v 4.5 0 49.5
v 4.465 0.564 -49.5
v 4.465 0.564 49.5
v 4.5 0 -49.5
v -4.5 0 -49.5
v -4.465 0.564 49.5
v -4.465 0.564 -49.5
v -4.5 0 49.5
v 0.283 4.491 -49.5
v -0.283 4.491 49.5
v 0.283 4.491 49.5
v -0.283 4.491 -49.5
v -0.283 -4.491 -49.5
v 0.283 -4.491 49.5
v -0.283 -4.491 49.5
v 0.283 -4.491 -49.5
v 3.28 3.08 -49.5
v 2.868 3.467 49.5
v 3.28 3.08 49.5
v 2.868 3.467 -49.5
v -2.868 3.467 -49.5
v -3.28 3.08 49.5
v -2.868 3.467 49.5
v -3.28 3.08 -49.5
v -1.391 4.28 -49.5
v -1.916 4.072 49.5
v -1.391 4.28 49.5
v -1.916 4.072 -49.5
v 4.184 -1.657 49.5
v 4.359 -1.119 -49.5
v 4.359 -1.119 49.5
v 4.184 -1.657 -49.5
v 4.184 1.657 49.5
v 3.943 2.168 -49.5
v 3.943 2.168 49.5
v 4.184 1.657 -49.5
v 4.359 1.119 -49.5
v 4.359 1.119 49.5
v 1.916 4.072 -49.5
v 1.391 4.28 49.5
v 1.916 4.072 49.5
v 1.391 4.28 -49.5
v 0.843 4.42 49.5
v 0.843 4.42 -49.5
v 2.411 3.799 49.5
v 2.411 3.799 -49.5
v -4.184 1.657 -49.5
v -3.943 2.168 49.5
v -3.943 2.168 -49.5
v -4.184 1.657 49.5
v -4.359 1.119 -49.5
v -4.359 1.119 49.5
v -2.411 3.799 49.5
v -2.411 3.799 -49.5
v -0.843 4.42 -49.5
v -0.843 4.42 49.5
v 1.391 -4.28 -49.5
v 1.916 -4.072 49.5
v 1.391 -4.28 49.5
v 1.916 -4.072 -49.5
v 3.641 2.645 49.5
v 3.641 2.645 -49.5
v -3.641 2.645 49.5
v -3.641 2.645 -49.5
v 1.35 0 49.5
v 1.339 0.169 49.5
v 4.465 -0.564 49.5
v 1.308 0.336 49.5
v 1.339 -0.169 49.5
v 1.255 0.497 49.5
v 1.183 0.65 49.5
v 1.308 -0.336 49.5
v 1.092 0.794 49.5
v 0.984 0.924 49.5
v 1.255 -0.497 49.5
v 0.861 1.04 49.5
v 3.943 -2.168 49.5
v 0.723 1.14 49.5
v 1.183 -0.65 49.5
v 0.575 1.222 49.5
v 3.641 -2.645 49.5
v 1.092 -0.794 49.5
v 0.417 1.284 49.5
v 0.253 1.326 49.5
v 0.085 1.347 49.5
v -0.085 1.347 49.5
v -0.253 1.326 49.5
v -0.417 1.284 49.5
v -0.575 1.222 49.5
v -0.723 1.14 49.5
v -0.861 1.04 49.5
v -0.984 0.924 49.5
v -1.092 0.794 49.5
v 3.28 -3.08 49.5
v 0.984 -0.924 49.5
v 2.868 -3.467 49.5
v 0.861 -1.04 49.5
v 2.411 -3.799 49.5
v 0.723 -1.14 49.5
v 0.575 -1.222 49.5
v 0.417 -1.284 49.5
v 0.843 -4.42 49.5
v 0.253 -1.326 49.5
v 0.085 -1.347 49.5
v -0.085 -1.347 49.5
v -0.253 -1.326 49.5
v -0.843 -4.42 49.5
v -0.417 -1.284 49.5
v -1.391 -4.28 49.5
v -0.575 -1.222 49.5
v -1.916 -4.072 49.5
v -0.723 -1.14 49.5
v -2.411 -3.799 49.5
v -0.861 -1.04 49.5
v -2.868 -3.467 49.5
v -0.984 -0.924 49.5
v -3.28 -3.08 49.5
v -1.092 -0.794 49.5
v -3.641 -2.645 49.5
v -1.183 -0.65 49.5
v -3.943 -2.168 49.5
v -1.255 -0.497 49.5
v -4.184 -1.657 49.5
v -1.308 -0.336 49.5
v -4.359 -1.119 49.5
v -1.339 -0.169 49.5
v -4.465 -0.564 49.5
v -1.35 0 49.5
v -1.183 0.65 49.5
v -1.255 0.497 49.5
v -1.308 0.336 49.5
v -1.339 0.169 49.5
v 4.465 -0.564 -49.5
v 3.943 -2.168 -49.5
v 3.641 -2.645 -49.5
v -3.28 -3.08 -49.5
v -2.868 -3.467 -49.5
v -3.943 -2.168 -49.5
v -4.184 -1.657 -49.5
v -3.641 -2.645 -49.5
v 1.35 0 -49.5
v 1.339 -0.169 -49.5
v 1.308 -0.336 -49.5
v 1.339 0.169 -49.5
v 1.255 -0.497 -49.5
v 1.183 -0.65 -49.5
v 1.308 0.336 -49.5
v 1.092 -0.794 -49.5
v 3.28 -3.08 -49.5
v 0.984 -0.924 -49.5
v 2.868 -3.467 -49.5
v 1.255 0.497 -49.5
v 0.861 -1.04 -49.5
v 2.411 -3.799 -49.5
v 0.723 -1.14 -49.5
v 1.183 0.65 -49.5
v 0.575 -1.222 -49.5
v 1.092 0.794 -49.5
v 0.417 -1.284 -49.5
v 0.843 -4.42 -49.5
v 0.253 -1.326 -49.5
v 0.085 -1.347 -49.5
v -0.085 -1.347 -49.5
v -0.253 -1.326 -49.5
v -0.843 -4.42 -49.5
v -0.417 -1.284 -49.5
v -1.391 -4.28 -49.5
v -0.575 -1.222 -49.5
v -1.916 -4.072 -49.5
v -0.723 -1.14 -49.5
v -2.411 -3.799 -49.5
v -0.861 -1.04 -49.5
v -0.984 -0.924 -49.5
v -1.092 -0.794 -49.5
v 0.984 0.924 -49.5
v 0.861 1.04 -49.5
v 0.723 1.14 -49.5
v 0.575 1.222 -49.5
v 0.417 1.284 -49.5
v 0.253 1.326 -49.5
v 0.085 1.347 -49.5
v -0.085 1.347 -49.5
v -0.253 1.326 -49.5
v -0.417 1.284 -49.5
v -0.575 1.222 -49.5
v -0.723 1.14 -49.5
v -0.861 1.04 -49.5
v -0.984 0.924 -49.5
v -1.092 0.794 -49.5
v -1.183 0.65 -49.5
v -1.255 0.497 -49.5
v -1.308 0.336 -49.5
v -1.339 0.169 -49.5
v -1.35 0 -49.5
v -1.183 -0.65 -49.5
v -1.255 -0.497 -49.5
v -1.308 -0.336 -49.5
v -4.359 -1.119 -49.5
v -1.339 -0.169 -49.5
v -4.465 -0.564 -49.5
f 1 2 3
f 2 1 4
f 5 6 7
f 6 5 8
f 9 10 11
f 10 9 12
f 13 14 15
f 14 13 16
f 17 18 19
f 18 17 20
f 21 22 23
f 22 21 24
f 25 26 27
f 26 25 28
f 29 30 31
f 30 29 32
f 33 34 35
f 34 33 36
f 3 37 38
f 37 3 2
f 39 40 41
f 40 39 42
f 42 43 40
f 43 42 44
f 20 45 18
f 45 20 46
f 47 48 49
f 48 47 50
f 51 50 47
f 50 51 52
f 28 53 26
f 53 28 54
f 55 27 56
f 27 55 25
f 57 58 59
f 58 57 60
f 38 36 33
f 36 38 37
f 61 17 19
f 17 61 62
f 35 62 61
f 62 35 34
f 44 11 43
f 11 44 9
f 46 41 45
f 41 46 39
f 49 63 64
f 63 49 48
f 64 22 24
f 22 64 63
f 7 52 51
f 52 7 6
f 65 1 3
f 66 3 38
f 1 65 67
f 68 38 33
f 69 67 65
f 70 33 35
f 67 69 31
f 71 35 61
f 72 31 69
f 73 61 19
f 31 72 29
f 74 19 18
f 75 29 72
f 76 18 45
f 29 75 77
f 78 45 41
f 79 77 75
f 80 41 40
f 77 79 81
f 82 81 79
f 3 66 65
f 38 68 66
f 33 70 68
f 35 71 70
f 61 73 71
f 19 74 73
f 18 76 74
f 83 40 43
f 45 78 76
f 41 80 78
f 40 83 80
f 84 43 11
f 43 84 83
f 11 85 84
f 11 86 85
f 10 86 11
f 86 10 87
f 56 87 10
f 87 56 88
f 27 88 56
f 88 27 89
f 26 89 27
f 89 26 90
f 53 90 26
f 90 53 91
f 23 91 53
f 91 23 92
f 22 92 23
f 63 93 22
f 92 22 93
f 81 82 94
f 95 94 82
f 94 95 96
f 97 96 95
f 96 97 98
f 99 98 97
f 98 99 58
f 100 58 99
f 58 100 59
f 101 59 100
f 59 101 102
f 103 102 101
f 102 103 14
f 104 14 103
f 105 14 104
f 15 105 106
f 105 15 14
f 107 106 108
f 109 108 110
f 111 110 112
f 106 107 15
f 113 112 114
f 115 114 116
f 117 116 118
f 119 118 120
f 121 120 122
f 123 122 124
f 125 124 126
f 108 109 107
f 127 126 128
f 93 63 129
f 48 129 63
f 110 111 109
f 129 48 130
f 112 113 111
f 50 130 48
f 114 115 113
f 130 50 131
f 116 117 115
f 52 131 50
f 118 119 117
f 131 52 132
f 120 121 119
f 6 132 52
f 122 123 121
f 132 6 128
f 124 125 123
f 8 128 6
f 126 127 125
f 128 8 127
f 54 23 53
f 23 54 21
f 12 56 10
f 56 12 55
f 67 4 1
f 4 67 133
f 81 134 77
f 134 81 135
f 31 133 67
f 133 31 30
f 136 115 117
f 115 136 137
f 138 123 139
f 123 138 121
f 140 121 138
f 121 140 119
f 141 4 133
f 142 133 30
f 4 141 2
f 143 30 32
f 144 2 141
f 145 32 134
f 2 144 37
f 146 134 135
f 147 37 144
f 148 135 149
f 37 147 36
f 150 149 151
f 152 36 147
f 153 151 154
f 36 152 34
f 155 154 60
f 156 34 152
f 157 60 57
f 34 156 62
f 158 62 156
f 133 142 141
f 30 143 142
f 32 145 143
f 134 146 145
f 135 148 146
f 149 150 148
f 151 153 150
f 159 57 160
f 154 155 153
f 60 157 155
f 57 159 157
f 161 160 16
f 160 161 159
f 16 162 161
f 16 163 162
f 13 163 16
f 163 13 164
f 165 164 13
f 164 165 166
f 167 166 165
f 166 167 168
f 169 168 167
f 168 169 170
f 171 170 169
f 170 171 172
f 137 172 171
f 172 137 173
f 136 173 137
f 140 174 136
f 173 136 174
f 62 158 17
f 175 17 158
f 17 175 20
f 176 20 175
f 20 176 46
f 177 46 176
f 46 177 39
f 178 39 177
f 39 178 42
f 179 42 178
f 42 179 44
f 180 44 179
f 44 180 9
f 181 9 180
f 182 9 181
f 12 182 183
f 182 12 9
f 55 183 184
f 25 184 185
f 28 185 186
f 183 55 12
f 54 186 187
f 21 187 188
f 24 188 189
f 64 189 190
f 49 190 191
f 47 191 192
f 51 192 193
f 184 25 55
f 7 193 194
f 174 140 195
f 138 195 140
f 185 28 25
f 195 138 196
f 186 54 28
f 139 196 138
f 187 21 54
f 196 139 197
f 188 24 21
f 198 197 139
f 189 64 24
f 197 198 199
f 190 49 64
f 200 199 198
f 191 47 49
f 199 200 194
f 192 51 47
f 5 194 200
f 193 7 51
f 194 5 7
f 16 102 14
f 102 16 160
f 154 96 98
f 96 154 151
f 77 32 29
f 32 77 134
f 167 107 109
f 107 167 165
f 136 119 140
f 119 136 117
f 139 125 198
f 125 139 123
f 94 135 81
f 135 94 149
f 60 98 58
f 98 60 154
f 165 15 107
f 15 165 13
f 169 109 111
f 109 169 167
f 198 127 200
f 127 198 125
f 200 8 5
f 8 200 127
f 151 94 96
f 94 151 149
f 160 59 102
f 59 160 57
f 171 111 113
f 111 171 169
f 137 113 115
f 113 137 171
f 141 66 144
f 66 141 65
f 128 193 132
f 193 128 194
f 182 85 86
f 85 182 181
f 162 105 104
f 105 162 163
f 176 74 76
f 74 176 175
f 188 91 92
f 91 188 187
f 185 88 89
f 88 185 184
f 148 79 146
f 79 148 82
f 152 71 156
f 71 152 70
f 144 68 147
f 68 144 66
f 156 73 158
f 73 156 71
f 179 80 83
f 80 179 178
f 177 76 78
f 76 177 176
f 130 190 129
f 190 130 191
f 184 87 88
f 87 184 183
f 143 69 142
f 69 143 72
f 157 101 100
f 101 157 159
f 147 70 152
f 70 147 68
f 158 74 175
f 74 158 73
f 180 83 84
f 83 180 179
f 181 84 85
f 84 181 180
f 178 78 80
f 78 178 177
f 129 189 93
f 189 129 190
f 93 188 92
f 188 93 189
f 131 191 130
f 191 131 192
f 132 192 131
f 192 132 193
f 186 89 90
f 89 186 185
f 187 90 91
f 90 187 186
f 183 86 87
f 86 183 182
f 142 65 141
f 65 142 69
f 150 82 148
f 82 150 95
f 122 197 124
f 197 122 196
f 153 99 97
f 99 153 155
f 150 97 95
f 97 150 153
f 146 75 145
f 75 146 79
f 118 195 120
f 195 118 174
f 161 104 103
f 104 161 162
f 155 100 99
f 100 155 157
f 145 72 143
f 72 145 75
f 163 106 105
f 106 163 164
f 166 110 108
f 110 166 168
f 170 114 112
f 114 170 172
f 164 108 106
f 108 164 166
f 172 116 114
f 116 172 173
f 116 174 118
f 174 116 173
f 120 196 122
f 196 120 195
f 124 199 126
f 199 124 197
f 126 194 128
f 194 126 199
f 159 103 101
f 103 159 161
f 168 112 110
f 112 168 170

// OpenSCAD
$fn = 50;


difference() {
	union() {
		translate(v = [0, 0, -49.5000000000]) {
			cylinder(h = 99, r = 4.5000000000);
		}
	}
	union() {
		translate(v = [0, 0, -100.0000000000]) {
			cylinder(h = 200, r = 1.3500000000);
		}
	}
}
